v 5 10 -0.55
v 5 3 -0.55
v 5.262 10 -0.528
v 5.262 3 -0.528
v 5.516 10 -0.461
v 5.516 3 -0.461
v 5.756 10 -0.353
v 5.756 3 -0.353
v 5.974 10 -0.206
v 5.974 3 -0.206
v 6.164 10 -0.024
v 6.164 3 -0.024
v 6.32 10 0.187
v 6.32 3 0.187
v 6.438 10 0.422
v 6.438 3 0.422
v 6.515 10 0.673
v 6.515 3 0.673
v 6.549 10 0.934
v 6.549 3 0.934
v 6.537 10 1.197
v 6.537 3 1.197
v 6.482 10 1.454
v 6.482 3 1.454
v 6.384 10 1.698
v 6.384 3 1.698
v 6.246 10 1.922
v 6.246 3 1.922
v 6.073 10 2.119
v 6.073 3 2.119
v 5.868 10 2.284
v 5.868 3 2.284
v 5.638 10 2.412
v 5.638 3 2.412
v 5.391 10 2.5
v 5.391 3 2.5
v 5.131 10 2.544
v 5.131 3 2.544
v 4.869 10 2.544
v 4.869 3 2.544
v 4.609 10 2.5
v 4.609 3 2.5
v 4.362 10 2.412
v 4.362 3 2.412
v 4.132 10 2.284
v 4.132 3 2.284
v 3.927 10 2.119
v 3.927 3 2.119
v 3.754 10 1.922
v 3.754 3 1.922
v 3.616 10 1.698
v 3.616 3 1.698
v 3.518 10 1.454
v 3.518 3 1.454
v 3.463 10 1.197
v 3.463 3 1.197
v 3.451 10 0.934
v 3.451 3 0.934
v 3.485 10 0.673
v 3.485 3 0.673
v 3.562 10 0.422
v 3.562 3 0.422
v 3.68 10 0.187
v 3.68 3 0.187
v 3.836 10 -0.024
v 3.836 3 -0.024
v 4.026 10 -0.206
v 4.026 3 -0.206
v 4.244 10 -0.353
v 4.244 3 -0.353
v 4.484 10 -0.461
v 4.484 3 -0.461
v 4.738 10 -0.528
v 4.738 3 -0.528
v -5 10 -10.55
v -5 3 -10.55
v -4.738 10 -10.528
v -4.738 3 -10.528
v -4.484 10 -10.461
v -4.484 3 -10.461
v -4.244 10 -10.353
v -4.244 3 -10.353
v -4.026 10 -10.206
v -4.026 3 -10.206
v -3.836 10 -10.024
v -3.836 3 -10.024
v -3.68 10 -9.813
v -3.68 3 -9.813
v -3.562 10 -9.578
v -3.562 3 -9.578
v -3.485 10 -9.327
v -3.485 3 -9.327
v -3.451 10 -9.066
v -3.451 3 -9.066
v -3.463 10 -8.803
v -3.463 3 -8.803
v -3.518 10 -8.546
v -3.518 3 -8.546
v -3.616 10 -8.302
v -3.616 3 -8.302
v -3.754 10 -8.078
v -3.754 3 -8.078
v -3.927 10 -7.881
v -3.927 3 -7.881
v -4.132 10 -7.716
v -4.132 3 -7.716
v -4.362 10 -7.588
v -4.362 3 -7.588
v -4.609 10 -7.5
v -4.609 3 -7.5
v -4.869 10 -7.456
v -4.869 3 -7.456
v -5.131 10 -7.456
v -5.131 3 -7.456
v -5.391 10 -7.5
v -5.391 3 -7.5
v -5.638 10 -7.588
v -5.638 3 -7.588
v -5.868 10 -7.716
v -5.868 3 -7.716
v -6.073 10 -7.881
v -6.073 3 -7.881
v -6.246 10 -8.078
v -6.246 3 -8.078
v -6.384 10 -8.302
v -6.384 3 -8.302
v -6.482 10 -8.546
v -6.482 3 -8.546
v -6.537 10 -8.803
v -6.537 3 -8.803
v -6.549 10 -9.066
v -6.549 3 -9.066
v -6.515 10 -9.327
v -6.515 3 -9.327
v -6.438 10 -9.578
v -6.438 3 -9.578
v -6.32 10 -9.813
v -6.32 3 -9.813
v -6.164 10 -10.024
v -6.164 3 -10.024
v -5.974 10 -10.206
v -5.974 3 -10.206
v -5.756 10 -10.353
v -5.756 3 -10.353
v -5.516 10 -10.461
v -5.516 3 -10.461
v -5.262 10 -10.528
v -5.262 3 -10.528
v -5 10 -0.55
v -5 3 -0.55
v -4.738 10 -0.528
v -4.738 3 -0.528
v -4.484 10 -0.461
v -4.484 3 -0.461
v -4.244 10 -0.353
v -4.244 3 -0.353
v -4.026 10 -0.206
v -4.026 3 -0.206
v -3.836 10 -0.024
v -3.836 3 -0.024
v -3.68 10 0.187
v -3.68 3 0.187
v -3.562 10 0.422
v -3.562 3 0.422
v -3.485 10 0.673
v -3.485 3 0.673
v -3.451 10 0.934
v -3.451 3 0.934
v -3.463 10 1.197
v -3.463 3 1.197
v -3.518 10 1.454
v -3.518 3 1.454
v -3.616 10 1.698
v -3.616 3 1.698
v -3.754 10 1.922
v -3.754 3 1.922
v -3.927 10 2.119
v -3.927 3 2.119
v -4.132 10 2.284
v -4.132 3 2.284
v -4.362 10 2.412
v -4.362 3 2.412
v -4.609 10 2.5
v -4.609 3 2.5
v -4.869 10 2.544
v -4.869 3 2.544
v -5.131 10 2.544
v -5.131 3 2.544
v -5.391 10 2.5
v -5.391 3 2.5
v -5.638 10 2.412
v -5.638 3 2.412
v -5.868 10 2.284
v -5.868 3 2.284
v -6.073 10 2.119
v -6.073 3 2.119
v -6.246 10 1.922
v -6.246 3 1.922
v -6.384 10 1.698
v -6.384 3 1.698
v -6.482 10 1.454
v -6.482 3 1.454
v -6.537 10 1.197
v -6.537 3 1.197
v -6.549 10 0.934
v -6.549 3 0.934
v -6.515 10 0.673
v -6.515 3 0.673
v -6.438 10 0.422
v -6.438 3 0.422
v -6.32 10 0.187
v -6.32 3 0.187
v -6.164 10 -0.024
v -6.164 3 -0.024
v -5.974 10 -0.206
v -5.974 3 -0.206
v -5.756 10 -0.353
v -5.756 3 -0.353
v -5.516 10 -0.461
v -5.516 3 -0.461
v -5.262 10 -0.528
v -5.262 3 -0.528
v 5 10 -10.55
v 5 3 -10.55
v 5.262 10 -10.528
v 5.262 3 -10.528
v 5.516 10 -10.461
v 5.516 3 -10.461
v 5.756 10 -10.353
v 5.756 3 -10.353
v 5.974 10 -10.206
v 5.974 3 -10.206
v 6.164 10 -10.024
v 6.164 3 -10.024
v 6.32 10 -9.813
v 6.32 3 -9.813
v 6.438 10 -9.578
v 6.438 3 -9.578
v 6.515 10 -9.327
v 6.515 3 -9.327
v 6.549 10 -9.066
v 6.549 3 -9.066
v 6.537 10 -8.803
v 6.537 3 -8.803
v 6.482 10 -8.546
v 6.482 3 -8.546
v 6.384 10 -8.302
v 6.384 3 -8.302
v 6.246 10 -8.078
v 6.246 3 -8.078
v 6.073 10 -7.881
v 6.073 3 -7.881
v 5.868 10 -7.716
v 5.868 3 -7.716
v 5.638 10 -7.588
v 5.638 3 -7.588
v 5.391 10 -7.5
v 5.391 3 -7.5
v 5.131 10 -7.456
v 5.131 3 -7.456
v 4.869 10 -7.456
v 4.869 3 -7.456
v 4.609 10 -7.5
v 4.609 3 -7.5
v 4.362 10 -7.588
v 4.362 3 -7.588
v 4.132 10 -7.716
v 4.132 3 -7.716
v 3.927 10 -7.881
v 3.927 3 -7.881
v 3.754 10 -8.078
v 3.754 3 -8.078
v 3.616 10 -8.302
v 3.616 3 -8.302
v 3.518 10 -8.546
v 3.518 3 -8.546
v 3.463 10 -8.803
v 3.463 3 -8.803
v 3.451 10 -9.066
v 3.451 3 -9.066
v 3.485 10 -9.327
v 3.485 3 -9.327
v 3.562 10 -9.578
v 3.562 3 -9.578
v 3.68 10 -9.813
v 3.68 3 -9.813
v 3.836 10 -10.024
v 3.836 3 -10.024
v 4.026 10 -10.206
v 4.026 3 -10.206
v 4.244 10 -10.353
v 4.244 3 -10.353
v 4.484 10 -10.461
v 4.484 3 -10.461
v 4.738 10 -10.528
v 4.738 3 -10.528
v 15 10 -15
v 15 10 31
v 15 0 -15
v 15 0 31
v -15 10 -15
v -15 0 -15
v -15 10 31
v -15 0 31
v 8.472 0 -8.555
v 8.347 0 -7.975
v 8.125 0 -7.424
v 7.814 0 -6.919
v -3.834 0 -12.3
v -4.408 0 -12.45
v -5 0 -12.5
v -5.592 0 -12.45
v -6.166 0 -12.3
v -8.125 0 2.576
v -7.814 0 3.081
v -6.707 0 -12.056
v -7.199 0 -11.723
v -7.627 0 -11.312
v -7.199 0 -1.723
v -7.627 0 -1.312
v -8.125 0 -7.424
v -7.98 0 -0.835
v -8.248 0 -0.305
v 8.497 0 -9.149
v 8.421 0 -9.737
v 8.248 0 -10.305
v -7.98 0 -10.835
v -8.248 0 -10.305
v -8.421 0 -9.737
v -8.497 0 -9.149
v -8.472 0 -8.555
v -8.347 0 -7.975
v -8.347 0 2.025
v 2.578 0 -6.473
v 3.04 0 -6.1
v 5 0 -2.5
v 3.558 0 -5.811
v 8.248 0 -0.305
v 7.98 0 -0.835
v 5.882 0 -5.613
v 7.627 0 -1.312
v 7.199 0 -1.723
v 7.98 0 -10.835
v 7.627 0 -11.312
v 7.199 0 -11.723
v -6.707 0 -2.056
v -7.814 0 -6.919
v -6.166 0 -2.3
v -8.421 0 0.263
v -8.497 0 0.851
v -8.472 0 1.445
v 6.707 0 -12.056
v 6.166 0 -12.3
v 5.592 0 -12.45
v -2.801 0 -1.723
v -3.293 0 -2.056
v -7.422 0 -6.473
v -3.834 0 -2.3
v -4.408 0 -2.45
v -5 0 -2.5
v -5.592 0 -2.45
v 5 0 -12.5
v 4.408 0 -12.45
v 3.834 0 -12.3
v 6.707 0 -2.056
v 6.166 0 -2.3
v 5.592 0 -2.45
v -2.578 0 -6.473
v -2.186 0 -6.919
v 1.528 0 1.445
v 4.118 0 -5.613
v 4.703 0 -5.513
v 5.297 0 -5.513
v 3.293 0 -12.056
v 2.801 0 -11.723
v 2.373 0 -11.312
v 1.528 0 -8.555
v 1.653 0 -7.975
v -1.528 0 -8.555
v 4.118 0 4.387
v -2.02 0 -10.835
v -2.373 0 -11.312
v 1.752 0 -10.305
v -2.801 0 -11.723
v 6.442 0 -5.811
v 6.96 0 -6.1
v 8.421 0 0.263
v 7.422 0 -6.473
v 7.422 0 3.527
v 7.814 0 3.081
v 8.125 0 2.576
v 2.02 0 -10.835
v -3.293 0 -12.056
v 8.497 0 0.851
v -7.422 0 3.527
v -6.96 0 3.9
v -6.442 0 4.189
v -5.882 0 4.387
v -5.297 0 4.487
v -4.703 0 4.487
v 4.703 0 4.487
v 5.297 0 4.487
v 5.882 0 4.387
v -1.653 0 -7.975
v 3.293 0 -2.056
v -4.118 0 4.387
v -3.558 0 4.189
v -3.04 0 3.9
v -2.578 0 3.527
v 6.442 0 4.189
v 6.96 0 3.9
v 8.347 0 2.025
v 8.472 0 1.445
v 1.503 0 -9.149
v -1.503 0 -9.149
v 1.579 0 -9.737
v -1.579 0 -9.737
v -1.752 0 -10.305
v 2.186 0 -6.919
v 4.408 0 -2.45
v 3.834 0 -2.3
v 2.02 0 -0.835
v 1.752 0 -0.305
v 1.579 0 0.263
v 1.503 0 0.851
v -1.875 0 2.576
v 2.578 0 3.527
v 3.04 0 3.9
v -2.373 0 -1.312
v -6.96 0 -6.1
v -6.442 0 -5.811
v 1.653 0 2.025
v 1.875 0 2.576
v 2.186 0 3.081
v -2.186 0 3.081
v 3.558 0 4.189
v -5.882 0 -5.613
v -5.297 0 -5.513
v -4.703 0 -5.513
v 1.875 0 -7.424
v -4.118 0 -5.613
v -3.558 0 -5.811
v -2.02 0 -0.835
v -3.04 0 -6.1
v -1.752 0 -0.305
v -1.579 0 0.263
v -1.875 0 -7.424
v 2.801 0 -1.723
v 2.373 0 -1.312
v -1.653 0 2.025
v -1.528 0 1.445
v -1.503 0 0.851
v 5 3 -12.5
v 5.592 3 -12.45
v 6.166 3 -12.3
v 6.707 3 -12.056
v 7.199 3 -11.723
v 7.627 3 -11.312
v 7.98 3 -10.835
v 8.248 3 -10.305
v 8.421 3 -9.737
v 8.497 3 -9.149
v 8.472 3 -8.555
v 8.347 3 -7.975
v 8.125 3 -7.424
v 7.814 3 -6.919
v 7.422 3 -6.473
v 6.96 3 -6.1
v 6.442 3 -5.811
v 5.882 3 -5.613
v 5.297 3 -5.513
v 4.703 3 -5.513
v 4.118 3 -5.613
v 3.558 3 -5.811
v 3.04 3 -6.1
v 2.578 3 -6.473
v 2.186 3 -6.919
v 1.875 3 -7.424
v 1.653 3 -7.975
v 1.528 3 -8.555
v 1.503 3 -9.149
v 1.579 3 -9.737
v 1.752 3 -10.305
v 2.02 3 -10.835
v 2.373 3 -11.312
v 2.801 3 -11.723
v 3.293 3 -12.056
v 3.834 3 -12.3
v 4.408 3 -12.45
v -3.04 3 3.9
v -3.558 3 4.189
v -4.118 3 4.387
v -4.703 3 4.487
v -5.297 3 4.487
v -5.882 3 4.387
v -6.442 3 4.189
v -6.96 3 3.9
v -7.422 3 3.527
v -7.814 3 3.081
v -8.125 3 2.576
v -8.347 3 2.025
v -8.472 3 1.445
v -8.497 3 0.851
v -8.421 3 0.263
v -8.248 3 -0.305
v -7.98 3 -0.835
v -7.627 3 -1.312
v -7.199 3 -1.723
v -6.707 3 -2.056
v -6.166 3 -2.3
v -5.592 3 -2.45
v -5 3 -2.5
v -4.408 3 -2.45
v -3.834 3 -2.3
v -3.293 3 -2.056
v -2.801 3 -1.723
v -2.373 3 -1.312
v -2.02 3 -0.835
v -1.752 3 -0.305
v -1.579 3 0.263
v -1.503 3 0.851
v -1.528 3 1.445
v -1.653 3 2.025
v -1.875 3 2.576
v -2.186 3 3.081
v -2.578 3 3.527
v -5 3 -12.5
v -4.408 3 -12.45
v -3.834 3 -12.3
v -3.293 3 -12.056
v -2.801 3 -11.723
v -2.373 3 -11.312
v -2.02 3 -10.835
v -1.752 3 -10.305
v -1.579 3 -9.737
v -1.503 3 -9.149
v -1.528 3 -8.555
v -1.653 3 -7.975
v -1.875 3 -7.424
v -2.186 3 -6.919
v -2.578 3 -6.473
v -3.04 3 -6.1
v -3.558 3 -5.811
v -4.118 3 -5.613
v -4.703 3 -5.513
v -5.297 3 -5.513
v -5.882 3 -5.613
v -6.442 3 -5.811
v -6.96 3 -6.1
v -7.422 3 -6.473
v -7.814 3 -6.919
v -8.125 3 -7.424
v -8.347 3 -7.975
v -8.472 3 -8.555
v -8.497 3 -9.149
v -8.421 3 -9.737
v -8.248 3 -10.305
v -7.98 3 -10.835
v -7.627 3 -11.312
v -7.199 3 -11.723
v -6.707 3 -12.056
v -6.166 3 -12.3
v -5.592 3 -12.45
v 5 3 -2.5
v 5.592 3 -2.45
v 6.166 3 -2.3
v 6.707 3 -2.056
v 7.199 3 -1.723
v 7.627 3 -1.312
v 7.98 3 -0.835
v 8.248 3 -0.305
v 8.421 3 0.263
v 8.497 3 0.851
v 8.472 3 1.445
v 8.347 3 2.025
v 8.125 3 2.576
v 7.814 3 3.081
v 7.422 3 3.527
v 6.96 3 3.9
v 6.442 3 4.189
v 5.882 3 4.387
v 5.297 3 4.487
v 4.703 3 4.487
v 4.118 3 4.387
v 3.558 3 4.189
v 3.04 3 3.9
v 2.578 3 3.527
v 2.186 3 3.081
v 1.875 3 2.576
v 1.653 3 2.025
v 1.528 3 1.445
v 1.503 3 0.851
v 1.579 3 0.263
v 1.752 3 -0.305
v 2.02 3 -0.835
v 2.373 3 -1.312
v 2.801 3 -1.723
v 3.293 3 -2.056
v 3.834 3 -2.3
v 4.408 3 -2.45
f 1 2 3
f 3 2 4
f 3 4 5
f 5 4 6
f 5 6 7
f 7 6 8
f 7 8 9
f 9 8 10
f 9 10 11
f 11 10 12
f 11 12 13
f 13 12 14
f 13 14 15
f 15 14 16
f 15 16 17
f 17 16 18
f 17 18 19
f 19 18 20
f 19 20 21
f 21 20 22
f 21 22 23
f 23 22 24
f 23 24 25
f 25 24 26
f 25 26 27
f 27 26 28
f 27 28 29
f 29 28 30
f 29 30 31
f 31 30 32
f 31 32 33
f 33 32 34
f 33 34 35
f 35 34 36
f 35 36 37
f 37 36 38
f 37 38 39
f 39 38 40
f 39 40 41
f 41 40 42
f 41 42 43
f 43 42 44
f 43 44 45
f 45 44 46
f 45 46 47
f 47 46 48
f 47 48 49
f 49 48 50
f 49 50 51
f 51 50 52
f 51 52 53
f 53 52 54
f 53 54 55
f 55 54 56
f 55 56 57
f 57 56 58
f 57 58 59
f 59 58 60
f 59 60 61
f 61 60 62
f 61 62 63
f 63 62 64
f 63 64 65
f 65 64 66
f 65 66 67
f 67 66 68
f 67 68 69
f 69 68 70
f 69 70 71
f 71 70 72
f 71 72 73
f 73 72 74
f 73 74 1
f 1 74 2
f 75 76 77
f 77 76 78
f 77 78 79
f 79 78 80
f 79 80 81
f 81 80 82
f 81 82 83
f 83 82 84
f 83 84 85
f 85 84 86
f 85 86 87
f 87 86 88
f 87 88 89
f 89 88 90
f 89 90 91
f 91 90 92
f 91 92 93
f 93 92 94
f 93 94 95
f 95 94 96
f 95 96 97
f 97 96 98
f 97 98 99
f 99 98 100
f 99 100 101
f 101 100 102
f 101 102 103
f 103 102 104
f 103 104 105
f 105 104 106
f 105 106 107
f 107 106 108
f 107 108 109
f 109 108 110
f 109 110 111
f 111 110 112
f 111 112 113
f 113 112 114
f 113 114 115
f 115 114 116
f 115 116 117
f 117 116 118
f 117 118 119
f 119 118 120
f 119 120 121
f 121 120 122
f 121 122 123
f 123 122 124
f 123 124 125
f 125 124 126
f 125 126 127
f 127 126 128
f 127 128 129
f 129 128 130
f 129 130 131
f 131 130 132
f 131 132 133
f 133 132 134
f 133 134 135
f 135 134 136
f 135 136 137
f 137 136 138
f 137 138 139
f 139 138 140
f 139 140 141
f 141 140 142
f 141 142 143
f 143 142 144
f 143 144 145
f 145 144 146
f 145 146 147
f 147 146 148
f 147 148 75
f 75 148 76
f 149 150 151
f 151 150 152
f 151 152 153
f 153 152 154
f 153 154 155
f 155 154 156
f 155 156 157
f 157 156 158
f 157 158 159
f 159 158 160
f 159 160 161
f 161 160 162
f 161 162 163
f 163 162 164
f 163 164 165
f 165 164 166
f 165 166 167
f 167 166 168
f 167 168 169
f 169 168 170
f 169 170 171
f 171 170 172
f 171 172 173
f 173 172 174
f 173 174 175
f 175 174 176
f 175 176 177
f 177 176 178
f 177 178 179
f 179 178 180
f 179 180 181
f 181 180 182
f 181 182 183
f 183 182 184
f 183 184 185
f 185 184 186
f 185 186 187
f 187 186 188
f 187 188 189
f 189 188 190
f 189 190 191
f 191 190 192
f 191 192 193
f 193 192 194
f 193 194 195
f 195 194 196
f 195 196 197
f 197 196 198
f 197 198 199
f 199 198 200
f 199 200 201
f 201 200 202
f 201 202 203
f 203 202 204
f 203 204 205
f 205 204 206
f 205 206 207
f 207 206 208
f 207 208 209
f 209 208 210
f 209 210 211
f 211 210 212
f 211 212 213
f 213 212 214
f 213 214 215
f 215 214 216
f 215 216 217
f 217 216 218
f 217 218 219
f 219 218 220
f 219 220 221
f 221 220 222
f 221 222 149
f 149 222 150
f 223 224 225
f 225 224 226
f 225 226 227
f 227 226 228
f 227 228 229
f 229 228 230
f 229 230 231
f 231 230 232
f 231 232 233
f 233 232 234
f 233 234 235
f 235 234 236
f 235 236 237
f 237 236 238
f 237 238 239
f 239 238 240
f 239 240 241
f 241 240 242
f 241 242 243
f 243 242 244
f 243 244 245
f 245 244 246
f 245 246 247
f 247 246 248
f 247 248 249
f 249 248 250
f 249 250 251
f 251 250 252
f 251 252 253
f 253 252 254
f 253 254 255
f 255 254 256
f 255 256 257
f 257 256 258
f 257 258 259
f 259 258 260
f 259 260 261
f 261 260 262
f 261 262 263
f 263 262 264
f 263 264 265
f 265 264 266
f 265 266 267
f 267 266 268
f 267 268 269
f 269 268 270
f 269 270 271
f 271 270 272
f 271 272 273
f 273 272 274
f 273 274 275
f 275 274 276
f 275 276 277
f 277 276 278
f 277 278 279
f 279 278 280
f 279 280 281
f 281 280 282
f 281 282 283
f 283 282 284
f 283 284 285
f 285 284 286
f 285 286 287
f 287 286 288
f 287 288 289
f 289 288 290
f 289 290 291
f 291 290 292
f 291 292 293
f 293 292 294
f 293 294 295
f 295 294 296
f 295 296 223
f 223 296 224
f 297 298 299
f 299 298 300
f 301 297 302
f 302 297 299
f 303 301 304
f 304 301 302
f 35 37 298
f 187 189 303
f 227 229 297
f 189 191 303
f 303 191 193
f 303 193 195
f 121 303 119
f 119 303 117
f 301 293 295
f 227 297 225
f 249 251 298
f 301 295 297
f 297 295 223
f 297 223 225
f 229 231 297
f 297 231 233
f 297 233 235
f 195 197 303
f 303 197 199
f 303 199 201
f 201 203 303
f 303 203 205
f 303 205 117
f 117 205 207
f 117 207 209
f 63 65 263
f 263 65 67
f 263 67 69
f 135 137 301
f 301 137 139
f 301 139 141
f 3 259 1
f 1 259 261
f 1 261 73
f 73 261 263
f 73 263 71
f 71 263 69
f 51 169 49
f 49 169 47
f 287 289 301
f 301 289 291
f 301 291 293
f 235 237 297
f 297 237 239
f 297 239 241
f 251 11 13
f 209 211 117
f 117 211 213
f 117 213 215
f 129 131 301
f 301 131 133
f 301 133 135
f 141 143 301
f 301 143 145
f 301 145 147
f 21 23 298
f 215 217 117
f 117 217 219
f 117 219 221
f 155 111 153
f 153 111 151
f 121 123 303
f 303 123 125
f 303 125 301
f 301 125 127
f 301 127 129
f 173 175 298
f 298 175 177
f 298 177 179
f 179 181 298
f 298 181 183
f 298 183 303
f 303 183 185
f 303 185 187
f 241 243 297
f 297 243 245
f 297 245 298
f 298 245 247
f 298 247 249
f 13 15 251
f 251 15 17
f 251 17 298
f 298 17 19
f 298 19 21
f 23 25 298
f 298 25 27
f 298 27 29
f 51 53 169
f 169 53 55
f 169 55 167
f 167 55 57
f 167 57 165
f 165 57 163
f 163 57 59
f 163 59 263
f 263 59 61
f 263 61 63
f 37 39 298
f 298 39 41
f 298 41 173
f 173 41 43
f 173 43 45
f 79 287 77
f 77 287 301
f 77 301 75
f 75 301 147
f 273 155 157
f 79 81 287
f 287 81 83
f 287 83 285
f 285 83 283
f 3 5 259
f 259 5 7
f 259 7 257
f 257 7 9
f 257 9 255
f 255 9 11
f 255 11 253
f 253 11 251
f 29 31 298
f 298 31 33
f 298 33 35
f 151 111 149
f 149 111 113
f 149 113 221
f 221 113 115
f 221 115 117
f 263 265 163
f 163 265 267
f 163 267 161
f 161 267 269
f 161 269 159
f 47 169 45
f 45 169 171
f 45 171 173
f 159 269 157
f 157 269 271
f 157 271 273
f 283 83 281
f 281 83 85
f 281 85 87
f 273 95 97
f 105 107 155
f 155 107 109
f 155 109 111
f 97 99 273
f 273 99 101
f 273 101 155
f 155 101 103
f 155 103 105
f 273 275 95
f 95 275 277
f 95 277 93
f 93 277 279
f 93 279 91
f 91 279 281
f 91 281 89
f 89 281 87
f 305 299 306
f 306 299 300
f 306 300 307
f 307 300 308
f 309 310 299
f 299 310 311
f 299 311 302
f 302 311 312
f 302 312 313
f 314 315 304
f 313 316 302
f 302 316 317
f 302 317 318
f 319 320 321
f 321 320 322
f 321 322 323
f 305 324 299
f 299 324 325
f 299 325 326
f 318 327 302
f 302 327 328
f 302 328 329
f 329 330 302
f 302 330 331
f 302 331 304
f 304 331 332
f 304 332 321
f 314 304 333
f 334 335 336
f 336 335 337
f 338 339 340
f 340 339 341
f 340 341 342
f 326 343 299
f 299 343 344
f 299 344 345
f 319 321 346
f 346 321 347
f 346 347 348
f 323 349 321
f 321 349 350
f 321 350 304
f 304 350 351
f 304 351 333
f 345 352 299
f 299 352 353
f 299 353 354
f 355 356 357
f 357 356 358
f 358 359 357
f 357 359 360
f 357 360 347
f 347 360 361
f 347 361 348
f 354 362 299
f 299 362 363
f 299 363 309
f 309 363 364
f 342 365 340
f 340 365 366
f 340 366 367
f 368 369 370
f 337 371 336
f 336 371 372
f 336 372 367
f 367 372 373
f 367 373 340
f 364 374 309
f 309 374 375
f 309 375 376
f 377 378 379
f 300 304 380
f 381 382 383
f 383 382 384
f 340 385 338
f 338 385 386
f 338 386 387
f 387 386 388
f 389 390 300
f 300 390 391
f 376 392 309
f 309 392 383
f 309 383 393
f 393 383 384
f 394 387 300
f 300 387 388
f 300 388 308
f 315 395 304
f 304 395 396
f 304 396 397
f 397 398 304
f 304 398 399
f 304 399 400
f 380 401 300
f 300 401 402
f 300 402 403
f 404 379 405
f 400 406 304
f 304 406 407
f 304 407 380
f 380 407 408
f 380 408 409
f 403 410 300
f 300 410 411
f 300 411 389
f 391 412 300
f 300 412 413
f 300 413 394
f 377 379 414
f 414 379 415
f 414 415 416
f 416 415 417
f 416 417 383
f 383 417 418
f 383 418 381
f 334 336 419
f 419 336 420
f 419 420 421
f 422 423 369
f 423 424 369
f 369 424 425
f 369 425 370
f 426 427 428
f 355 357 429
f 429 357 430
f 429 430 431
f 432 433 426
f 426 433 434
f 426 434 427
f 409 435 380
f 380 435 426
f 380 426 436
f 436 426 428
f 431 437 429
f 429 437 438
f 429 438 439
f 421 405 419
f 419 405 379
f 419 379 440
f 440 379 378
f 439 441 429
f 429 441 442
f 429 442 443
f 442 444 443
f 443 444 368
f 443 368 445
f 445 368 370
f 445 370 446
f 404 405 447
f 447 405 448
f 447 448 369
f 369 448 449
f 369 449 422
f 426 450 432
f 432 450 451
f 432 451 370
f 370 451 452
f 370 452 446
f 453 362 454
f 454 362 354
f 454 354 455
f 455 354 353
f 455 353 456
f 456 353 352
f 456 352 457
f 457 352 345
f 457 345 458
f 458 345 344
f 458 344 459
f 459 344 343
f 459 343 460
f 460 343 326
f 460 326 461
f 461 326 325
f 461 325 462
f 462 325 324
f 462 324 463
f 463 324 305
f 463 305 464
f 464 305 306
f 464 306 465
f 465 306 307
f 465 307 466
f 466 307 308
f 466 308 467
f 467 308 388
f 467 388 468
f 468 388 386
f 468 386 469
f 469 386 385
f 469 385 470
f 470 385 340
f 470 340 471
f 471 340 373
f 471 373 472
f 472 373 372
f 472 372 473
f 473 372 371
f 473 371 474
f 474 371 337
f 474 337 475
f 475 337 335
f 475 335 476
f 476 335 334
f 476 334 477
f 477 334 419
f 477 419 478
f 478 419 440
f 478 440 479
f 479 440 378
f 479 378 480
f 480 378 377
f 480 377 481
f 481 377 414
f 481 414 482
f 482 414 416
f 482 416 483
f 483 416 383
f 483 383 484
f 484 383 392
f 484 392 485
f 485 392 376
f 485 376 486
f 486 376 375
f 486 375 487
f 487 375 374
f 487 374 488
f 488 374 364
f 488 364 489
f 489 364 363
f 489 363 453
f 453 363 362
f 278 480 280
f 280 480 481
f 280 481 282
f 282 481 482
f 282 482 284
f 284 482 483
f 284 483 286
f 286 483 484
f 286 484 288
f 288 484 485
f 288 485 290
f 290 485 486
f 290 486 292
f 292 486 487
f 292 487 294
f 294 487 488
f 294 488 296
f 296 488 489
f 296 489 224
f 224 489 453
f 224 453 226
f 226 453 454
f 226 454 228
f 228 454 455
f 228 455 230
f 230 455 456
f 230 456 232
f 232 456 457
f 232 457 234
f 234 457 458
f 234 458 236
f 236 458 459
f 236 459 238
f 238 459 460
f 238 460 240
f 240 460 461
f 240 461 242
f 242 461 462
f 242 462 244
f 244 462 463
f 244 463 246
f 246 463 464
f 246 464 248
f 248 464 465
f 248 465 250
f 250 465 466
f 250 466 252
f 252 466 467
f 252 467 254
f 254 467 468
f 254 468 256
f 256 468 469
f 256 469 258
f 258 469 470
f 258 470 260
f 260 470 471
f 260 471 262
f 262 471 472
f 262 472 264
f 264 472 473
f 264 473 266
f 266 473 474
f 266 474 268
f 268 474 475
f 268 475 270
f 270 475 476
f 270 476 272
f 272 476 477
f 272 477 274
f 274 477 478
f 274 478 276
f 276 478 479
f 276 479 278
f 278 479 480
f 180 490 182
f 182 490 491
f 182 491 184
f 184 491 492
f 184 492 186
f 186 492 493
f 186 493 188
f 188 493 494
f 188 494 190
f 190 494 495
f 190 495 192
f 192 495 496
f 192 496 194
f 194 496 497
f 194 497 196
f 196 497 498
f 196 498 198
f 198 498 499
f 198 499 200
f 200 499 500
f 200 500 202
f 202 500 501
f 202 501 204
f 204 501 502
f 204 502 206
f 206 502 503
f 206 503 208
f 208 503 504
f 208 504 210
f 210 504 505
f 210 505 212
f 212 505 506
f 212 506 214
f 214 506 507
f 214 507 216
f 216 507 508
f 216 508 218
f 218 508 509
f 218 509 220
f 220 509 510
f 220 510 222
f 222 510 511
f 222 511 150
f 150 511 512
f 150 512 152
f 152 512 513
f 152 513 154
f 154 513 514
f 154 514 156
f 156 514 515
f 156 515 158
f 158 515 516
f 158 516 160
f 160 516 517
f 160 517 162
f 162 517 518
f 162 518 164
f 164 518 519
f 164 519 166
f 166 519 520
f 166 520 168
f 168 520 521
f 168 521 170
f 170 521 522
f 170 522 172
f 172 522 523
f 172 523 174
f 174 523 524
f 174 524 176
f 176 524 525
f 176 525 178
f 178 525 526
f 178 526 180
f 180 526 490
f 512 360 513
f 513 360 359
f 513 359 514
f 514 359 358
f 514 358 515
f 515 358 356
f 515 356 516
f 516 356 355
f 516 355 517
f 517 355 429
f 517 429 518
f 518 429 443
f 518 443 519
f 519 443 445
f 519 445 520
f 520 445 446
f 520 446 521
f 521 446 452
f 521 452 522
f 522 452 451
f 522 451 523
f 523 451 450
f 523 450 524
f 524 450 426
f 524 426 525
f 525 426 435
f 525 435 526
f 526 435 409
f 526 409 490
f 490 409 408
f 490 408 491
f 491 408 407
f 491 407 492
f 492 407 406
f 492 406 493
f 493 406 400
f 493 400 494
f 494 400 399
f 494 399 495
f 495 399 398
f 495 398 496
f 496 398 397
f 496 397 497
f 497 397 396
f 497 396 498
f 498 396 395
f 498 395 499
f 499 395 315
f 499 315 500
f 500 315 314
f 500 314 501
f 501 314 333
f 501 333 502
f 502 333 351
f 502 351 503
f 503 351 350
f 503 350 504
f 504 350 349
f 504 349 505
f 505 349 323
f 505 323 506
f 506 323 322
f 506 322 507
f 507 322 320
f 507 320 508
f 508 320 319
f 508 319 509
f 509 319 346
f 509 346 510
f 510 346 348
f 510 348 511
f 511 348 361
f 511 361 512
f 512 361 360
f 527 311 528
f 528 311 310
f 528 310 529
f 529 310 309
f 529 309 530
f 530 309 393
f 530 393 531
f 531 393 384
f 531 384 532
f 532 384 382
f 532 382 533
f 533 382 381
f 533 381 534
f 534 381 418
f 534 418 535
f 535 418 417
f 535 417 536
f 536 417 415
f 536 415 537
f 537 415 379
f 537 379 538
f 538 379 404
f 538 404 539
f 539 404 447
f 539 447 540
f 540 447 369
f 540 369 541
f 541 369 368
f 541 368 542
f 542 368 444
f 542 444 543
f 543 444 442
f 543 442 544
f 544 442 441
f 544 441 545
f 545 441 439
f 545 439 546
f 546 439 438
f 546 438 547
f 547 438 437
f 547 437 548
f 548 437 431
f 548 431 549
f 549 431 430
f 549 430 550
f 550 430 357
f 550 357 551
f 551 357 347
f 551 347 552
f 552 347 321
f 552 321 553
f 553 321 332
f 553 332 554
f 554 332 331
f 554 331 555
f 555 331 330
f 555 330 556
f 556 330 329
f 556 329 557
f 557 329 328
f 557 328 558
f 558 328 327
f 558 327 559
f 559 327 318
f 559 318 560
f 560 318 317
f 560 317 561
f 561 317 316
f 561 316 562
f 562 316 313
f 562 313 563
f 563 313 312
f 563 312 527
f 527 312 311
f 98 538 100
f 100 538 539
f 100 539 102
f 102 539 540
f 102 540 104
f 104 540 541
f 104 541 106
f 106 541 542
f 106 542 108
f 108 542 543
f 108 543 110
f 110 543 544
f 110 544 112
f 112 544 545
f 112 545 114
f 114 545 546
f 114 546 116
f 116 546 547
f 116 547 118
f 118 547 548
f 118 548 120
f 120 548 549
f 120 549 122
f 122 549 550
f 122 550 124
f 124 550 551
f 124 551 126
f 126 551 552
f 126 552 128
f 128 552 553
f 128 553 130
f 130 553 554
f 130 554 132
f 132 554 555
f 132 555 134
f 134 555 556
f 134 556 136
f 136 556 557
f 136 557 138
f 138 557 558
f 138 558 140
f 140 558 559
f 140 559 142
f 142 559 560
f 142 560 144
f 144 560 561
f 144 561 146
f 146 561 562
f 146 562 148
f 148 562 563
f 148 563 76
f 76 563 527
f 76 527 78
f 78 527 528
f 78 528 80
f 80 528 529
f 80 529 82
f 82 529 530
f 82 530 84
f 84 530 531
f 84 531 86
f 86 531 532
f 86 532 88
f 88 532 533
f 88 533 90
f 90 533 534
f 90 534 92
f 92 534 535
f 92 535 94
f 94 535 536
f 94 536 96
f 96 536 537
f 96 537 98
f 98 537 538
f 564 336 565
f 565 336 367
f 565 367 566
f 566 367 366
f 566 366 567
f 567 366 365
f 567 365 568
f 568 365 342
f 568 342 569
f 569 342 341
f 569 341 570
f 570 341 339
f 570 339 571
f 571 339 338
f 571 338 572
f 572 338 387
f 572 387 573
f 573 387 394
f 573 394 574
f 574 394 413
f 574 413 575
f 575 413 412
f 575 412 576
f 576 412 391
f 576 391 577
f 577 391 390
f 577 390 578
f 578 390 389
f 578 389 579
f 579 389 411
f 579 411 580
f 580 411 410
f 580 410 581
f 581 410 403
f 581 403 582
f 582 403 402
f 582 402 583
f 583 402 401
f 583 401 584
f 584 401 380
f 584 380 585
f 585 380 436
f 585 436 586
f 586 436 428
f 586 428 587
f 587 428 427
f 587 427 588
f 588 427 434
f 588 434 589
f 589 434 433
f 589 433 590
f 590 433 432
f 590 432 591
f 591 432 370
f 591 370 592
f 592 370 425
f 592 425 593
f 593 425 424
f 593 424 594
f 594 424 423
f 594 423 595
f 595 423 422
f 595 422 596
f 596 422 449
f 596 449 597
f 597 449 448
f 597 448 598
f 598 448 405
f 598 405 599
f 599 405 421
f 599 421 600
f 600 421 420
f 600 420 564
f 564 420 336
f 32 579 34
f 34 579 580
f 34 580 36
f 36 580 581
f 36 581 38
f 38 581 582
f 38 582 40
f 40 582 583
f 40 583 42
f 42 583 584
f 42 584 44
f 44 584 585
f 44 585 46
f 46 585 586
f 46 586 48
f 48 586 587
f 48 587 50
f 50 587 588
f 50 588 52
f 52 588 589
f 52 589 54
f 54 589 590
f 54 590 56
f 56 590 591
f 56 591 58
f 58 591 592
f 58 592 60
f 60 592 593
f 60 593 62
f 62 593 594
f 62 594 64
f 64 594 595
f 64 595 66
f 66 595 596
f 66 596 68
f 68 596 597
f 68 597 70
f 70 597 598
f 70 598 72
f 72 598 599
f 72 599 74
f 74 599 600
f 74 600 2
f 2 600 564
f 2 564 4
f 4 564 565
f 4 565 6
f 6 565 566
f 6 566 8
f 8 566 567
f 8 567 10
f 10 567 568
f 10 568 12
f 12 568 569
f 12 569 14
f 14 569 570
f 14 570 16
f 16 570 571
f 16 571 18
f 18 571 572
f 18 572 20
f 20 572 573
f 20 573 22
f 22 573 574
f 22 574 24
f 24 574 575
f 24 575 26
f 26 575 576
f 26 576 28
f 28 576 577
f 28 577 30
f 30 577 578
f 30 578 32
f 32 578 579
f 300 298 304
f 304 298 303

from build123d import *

# Parameters (mm, degrees)
SKETCH_1_W          = 30
SKETCH_1_H          = 30
EXTRUDE_1_DEPTH     = 10
SKETCH_4_R          = 1.55
CUT_EXTRUDE_1_DEPTH = 30
SKETCH_5_R          = 3.5
SKETCH_5_R_2        = 1.55
CUT_EXTRUDE_2_DEPTH = 3
SKETCH_6_W          = 30
SKETCH_6_H          = 10
EXTRUDE_2_DEPTH     = 16


with BuildPart() as part:
    # 草图1 → 凸台-拉伸1 (new body)
    with BuildSketch(Plane(origin=(0, 0, 0), x_dir=(1, 0, 0), z_dir=(0, 1, 0))):
        Rectangle(SKETCH_1_W, SKETCH_1_H)
    extrude(amount=EXTRUDE_1_DEPTH)

    # 草图4 → 切除-拉伸1 (cut)
    with BuildSketch(Plane.XZ):
        with Locations(Location((5, 1, 0), (0, 0, 270))):
            Circle(SKETCH_4_R)
        with Locations(Location((5, -9, 0), (0, 0, 270))):
            Circle(SKETCH_4_R)
        with Locations(Location((-5, 1, 0), (0, 0, 270))):
            Circle(SKETCH_4_R)
        with Locations(Location((-5, -9, 0), (0, 0, 270))):
            Circle(SKETCH_4_R)
    extrude(amount=-CUT_EXTRUDE_1_DEPTH, mode=Mode.SUBTRACT)

    # 草图5 → 切除-拉伸2 (cut)
    # profile 1 of 4: a face of its own
    with BuildSketch(Plane.XZ):
        with Locations(Location((5, 1, 0), (0, 0, 270))):
            Circle(SKETCH_5_R)
        with Locations(Location((5, 1, 0), (0, 0, 270))):
            Circle(SKETCH_5_R_2, mode=Mode.SUBTRACT)
    # profile 2 of 4: a face of its own
    with BuildSketch(Plane.XZ):
        with Locations(Location((5, -9, 0), (0, 0, 270))):
            Circle(SKETCH_5_R)
        with Locations(Location((5, -9, 0), (0, 0, 270))):
            Circle(SKETCH_5_R_2, mode=Mode.SUBTRACT)
    # profile 3 of 4: a face of its own
    with BuildSketch(Plane.XZ):
        with Locations(Location((-5, -9, 0), (0, 0, 270))):
            Circle(SKETCH_5_R)
        with Locations(Location((-5, -9, 0), (0, 0, 270))):
            Circle(SKETCH_5_R_2, mode=Mode.SUBTRACT)
    # profile 4 of 4: a face of its own
    with BuildSketch(Plane.XZ):
        with Locations(Location((-5, 1, 0), (0, 0, 270))):
            Circle(SKETCH_5_R)
    extrude(amount=-CUT_EXTRUDE_2_DEPTH, mode=Mode.SUBTRACT)

    # 草图6 → 凸台-拉伸2 (add)
    with BuildSketch(Plane.XY.offset(15)):
        with Locations((0, 5)):
            Rectangle(SKETCH_6_W, SKETCH_6_H)
    extrude(amount=EXTRUDE_2_DEPTH)


solid = part.part
